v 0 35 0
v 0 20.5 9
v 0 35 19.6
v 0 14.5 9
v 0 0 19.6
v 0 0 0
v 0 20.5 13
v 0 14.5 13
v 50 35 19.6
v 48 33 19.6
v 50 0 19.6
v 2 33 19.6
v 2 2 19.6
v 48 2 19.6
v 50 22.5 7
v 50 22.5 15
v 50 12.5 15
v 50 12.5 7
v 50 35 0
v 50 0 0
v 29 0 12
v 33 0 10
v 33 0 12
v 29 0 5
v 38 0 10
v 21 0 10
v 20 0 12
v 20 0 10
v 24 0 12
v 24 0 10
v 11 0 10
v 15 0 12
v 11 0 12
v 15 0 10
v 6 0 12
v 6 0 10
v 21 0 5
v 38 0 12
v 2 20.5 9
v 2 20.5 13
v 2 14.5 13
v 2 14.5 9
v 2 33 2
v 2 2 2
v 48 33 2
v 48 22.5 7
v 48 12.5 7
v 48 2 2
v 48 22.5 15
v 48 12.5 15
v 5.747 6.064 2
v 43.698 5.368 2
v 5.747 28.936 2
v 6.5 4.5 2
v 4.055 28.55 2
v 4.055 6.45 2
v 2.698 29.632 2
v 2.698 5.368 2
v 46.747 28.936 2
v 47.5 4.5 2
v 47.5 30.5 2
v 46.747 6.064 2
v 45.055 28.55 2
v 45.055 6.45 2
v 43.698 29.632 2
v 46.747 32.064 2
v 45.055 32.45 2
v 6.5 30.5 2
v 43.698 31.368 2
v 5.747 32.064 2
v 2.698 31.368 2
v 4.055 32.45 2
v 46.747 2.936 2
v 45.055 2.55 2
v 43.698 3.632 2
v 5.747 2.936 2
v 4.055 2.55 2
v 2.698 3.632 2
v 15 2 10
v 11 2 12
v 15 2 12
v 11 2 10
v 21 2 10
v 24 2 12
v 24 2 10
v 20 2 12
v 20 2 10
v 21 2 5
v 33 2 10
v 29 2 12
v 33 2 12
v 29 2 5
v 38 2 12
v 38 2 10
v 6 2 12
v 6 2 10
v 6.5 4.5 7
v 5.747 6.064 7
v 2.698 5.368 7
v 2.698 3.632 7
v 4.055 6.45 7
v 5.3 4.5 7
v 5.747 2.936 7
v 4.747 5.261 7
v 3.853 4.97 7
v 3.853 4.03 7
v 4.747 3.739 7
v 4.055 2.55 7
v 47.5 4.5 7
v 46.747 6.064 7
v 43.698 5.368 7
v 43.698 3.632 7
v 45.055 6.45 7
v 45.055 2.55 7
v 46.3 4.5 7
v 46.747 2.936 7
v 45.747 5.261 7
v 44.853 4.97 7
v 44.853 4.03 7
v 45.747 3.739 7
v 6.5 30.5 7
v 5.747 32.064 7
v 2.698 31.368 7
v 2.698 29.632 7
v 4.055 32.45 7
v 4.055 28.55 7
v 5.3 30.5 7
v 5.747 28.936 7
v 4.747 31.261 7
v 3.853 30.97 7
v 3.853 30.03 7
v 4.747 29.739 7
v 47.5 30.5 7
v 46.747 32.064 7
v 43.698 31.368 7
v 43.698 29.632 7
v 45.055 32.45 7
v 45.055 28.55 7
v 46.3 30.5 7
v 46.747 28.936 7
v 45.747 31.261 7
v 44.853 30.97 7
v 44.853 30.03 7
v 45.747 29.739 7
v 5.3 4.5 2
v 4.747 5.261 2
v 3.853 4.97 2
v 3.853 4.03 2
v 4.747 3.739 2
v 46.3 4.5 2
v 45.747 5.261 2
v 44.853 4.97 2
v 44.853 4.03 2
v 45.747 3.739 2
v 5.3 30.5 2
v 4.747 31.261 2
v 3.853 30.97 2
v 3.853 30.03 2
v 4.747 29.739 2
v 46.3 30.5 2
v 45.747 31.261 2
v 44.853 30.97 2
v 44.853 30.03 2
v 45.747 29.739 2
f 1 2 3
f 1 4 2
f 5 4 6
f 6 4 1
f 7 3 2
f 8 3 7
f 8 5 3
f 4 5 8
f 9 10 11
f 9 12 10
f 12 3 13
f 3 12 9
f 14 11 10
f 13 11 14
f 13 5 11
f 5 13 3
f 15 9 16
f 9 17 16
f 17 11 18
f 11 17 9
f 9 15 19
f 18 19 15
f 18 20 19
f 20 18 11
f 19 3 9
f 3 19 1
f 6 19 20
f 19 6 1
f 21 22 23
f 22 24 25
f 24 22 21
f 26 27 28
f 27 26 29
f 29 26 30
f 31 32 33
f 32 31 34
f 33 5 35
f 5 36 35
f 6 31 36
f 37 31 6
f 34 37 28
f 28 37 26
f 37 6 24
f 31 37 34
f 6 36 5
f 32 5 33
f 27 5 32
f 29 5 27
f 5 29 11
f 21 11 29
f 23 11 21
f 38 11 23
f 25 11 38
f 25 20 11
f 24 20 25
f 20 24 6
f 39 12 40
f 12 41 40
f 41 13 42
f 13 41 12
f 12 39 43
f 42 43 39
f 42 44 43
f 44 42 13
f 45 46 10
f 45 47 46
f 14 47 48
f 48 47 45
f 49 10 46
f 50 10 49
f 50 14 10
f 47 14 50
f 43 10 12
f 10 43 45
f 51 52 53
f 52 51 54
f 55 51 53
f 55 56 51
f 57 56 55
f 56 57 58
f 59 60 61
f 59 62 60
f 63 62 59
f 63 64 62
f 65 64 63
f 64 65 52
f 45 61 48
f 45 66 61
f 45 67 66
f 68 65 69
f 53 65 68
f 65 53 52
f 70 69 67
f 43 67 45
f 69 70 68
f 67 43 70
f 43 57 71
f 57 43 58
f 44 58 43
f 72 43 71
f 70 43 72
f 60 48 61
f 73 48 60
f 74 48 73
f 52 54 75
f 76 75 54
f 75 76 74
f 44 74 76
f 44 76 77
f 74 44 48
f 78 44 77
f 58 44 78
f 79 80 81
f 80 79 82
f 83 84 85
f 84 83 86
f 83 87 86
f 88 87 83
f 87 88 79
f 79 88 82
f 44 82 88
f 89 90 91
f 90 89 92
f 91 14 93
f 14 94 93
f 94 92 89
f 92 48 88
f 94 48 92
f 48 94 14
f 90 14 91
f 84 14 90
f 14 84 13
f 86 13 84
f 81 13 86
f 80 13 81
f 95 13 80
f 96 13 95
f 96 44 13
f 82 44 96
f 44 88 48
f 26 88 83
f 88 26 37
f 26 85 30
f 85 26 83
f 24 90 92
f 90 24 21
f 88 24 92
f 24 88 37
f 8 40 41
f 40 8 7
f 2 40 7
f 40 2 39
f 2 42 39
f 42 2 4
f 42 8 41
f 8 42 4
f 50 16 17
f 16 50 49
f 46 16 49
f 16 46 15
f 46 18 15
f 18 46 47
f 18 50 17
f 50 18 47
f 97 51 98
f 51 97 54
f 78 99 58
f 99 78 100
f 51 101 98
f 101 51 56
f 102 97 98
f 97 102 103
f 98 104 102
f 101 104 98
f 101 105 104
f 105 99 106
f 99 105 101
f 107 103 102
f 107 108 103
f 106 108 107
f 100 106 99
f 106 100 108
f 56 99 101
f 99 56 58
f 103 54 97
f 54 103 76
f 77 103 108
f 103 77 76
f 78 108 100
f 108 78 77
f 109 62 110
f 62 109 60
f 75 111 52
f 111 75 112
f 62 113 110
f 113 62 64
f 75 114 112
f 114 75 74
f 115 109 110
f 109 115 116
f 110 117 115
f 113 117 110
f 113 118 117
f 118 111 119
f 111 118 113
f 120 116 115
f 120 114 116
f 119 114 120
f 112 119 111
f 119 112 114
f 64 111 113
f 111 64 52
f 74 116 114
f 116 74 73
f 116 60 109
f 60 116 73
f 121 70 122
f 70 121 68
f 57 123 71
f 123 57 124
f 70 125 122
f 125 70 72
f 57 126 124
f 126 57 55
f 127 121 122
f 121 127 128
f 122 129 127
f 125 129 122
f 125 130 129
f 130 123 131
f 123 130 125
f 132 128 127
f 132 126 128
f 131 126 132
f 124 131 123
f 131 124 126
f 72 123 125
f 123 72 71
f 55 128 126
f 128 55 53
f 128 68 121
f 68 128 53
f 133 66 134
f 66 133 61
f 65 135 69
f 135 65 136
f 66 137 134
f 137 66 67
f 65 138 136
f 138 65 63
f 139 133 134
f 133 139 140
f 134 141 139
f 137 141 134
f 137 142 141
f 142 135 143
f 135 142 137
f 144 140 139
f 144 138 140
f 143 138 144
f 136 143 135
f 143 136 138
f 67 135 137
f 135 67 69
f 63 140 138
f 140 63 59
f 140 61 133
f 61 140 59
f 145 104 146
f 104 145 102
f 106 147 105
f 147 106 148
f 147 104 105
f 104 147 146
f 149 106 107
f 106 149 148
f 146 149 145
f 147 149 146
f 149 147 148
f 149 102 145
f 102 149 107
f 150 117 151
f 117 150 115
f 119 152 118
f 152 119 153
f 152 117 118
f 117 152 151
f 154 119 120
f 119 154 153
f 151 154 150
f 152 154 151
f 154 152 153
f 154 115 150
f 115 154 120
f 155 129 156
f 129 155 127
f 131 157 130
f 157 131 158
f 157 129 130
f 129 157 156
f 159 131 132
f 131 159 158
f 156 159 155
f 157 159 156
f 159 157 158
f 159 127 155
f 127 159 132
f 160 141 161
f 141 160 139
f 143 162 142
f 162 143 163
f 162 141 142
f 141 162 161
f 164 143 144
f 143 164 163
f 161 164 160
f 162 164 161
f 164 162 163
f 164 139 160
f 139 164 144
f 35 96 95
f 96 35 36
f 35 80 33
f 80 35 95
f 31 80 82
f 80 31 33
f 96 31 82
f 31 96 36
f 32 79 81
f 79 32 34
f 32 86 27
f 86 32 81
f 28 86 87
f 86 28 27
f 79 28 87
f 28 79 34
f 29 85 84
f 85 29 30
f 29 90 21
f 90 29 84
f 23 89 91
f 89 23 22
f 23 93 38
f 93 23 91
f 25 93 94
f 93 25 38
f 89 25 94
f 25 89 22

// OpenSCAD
difference() {
	union() {
		difference() {
			cube(size = [50.0, 35.0, 19.6]);
			translate(v = [2.0, 2.0, 2.0]) {
				cube(size = [46.0, 31.0, 18.6]);
			}
			translate(v = [21.0, -1, 5.0]) {
				cube(size = [8, 4.0, 5]);
			}
			translate(v = [-1, 14.5, 9.0]) {
				cube(size = [4.0, 6, 4]);
			}
			translate(v = [47.0, 12.5, 7.0]) {
				cube(size = [4.0, 10, 8]);
			}
		}
		union() {
			translate(v = [4.5, 4.5, 2.0]) {
				cylinder(h = 5.0, r = 2.0);
			}
			translate(v = [45.5, 4.5, 2.0]) {
				cylinder(h = 5.0, r = 2.0);
			}
			translate(v = [4.5, 30.5, 2.0]) {
				cylinder(h = 5.0, r = 2.0);
			}
			translate(v = [45.5, 30.5, 2.0]) {
				cylinder(h = 5.0, r = 2.0);
			}
		}
	}
	union() {
		translate(v = [4.5, 4.5, 2.0]) {
			cylinder(h = 6.0, r = 0.8);
		}
		translate(v = [45.5, 4.5, 2.0]) {
			cylinder(h = 6.0, r = 0.8);
		}
		translate(v = [4.5, 30.5, 2.0]) {
			cylinder(h = 6.0, r = 0.8);
		}
		translate(v = [45.5, 30.5, 2.0]) {
			cylinder(h = 6.0, r = 0.8);
		}
	}
	union() {
		union() {
			union() {
				union() {
					union();
					translate(v = [6.0, -1, 10.0]) {
						cube(size = [5, 4.0, 2]);
					}
				}
				translate(v = [15.0, -1, 10.0]) {
					cube(size = [5, 4.0, 2]);
				}
			}
			translate(v = [24.0, -1, 10.0]) {
				cube(size = [5, 4.0, 2]);
			}
		}
		translate(v = [33.0, -1, 10.0]) {
			cube(size = [5, 4.0, 2]);
		}
	}
}
